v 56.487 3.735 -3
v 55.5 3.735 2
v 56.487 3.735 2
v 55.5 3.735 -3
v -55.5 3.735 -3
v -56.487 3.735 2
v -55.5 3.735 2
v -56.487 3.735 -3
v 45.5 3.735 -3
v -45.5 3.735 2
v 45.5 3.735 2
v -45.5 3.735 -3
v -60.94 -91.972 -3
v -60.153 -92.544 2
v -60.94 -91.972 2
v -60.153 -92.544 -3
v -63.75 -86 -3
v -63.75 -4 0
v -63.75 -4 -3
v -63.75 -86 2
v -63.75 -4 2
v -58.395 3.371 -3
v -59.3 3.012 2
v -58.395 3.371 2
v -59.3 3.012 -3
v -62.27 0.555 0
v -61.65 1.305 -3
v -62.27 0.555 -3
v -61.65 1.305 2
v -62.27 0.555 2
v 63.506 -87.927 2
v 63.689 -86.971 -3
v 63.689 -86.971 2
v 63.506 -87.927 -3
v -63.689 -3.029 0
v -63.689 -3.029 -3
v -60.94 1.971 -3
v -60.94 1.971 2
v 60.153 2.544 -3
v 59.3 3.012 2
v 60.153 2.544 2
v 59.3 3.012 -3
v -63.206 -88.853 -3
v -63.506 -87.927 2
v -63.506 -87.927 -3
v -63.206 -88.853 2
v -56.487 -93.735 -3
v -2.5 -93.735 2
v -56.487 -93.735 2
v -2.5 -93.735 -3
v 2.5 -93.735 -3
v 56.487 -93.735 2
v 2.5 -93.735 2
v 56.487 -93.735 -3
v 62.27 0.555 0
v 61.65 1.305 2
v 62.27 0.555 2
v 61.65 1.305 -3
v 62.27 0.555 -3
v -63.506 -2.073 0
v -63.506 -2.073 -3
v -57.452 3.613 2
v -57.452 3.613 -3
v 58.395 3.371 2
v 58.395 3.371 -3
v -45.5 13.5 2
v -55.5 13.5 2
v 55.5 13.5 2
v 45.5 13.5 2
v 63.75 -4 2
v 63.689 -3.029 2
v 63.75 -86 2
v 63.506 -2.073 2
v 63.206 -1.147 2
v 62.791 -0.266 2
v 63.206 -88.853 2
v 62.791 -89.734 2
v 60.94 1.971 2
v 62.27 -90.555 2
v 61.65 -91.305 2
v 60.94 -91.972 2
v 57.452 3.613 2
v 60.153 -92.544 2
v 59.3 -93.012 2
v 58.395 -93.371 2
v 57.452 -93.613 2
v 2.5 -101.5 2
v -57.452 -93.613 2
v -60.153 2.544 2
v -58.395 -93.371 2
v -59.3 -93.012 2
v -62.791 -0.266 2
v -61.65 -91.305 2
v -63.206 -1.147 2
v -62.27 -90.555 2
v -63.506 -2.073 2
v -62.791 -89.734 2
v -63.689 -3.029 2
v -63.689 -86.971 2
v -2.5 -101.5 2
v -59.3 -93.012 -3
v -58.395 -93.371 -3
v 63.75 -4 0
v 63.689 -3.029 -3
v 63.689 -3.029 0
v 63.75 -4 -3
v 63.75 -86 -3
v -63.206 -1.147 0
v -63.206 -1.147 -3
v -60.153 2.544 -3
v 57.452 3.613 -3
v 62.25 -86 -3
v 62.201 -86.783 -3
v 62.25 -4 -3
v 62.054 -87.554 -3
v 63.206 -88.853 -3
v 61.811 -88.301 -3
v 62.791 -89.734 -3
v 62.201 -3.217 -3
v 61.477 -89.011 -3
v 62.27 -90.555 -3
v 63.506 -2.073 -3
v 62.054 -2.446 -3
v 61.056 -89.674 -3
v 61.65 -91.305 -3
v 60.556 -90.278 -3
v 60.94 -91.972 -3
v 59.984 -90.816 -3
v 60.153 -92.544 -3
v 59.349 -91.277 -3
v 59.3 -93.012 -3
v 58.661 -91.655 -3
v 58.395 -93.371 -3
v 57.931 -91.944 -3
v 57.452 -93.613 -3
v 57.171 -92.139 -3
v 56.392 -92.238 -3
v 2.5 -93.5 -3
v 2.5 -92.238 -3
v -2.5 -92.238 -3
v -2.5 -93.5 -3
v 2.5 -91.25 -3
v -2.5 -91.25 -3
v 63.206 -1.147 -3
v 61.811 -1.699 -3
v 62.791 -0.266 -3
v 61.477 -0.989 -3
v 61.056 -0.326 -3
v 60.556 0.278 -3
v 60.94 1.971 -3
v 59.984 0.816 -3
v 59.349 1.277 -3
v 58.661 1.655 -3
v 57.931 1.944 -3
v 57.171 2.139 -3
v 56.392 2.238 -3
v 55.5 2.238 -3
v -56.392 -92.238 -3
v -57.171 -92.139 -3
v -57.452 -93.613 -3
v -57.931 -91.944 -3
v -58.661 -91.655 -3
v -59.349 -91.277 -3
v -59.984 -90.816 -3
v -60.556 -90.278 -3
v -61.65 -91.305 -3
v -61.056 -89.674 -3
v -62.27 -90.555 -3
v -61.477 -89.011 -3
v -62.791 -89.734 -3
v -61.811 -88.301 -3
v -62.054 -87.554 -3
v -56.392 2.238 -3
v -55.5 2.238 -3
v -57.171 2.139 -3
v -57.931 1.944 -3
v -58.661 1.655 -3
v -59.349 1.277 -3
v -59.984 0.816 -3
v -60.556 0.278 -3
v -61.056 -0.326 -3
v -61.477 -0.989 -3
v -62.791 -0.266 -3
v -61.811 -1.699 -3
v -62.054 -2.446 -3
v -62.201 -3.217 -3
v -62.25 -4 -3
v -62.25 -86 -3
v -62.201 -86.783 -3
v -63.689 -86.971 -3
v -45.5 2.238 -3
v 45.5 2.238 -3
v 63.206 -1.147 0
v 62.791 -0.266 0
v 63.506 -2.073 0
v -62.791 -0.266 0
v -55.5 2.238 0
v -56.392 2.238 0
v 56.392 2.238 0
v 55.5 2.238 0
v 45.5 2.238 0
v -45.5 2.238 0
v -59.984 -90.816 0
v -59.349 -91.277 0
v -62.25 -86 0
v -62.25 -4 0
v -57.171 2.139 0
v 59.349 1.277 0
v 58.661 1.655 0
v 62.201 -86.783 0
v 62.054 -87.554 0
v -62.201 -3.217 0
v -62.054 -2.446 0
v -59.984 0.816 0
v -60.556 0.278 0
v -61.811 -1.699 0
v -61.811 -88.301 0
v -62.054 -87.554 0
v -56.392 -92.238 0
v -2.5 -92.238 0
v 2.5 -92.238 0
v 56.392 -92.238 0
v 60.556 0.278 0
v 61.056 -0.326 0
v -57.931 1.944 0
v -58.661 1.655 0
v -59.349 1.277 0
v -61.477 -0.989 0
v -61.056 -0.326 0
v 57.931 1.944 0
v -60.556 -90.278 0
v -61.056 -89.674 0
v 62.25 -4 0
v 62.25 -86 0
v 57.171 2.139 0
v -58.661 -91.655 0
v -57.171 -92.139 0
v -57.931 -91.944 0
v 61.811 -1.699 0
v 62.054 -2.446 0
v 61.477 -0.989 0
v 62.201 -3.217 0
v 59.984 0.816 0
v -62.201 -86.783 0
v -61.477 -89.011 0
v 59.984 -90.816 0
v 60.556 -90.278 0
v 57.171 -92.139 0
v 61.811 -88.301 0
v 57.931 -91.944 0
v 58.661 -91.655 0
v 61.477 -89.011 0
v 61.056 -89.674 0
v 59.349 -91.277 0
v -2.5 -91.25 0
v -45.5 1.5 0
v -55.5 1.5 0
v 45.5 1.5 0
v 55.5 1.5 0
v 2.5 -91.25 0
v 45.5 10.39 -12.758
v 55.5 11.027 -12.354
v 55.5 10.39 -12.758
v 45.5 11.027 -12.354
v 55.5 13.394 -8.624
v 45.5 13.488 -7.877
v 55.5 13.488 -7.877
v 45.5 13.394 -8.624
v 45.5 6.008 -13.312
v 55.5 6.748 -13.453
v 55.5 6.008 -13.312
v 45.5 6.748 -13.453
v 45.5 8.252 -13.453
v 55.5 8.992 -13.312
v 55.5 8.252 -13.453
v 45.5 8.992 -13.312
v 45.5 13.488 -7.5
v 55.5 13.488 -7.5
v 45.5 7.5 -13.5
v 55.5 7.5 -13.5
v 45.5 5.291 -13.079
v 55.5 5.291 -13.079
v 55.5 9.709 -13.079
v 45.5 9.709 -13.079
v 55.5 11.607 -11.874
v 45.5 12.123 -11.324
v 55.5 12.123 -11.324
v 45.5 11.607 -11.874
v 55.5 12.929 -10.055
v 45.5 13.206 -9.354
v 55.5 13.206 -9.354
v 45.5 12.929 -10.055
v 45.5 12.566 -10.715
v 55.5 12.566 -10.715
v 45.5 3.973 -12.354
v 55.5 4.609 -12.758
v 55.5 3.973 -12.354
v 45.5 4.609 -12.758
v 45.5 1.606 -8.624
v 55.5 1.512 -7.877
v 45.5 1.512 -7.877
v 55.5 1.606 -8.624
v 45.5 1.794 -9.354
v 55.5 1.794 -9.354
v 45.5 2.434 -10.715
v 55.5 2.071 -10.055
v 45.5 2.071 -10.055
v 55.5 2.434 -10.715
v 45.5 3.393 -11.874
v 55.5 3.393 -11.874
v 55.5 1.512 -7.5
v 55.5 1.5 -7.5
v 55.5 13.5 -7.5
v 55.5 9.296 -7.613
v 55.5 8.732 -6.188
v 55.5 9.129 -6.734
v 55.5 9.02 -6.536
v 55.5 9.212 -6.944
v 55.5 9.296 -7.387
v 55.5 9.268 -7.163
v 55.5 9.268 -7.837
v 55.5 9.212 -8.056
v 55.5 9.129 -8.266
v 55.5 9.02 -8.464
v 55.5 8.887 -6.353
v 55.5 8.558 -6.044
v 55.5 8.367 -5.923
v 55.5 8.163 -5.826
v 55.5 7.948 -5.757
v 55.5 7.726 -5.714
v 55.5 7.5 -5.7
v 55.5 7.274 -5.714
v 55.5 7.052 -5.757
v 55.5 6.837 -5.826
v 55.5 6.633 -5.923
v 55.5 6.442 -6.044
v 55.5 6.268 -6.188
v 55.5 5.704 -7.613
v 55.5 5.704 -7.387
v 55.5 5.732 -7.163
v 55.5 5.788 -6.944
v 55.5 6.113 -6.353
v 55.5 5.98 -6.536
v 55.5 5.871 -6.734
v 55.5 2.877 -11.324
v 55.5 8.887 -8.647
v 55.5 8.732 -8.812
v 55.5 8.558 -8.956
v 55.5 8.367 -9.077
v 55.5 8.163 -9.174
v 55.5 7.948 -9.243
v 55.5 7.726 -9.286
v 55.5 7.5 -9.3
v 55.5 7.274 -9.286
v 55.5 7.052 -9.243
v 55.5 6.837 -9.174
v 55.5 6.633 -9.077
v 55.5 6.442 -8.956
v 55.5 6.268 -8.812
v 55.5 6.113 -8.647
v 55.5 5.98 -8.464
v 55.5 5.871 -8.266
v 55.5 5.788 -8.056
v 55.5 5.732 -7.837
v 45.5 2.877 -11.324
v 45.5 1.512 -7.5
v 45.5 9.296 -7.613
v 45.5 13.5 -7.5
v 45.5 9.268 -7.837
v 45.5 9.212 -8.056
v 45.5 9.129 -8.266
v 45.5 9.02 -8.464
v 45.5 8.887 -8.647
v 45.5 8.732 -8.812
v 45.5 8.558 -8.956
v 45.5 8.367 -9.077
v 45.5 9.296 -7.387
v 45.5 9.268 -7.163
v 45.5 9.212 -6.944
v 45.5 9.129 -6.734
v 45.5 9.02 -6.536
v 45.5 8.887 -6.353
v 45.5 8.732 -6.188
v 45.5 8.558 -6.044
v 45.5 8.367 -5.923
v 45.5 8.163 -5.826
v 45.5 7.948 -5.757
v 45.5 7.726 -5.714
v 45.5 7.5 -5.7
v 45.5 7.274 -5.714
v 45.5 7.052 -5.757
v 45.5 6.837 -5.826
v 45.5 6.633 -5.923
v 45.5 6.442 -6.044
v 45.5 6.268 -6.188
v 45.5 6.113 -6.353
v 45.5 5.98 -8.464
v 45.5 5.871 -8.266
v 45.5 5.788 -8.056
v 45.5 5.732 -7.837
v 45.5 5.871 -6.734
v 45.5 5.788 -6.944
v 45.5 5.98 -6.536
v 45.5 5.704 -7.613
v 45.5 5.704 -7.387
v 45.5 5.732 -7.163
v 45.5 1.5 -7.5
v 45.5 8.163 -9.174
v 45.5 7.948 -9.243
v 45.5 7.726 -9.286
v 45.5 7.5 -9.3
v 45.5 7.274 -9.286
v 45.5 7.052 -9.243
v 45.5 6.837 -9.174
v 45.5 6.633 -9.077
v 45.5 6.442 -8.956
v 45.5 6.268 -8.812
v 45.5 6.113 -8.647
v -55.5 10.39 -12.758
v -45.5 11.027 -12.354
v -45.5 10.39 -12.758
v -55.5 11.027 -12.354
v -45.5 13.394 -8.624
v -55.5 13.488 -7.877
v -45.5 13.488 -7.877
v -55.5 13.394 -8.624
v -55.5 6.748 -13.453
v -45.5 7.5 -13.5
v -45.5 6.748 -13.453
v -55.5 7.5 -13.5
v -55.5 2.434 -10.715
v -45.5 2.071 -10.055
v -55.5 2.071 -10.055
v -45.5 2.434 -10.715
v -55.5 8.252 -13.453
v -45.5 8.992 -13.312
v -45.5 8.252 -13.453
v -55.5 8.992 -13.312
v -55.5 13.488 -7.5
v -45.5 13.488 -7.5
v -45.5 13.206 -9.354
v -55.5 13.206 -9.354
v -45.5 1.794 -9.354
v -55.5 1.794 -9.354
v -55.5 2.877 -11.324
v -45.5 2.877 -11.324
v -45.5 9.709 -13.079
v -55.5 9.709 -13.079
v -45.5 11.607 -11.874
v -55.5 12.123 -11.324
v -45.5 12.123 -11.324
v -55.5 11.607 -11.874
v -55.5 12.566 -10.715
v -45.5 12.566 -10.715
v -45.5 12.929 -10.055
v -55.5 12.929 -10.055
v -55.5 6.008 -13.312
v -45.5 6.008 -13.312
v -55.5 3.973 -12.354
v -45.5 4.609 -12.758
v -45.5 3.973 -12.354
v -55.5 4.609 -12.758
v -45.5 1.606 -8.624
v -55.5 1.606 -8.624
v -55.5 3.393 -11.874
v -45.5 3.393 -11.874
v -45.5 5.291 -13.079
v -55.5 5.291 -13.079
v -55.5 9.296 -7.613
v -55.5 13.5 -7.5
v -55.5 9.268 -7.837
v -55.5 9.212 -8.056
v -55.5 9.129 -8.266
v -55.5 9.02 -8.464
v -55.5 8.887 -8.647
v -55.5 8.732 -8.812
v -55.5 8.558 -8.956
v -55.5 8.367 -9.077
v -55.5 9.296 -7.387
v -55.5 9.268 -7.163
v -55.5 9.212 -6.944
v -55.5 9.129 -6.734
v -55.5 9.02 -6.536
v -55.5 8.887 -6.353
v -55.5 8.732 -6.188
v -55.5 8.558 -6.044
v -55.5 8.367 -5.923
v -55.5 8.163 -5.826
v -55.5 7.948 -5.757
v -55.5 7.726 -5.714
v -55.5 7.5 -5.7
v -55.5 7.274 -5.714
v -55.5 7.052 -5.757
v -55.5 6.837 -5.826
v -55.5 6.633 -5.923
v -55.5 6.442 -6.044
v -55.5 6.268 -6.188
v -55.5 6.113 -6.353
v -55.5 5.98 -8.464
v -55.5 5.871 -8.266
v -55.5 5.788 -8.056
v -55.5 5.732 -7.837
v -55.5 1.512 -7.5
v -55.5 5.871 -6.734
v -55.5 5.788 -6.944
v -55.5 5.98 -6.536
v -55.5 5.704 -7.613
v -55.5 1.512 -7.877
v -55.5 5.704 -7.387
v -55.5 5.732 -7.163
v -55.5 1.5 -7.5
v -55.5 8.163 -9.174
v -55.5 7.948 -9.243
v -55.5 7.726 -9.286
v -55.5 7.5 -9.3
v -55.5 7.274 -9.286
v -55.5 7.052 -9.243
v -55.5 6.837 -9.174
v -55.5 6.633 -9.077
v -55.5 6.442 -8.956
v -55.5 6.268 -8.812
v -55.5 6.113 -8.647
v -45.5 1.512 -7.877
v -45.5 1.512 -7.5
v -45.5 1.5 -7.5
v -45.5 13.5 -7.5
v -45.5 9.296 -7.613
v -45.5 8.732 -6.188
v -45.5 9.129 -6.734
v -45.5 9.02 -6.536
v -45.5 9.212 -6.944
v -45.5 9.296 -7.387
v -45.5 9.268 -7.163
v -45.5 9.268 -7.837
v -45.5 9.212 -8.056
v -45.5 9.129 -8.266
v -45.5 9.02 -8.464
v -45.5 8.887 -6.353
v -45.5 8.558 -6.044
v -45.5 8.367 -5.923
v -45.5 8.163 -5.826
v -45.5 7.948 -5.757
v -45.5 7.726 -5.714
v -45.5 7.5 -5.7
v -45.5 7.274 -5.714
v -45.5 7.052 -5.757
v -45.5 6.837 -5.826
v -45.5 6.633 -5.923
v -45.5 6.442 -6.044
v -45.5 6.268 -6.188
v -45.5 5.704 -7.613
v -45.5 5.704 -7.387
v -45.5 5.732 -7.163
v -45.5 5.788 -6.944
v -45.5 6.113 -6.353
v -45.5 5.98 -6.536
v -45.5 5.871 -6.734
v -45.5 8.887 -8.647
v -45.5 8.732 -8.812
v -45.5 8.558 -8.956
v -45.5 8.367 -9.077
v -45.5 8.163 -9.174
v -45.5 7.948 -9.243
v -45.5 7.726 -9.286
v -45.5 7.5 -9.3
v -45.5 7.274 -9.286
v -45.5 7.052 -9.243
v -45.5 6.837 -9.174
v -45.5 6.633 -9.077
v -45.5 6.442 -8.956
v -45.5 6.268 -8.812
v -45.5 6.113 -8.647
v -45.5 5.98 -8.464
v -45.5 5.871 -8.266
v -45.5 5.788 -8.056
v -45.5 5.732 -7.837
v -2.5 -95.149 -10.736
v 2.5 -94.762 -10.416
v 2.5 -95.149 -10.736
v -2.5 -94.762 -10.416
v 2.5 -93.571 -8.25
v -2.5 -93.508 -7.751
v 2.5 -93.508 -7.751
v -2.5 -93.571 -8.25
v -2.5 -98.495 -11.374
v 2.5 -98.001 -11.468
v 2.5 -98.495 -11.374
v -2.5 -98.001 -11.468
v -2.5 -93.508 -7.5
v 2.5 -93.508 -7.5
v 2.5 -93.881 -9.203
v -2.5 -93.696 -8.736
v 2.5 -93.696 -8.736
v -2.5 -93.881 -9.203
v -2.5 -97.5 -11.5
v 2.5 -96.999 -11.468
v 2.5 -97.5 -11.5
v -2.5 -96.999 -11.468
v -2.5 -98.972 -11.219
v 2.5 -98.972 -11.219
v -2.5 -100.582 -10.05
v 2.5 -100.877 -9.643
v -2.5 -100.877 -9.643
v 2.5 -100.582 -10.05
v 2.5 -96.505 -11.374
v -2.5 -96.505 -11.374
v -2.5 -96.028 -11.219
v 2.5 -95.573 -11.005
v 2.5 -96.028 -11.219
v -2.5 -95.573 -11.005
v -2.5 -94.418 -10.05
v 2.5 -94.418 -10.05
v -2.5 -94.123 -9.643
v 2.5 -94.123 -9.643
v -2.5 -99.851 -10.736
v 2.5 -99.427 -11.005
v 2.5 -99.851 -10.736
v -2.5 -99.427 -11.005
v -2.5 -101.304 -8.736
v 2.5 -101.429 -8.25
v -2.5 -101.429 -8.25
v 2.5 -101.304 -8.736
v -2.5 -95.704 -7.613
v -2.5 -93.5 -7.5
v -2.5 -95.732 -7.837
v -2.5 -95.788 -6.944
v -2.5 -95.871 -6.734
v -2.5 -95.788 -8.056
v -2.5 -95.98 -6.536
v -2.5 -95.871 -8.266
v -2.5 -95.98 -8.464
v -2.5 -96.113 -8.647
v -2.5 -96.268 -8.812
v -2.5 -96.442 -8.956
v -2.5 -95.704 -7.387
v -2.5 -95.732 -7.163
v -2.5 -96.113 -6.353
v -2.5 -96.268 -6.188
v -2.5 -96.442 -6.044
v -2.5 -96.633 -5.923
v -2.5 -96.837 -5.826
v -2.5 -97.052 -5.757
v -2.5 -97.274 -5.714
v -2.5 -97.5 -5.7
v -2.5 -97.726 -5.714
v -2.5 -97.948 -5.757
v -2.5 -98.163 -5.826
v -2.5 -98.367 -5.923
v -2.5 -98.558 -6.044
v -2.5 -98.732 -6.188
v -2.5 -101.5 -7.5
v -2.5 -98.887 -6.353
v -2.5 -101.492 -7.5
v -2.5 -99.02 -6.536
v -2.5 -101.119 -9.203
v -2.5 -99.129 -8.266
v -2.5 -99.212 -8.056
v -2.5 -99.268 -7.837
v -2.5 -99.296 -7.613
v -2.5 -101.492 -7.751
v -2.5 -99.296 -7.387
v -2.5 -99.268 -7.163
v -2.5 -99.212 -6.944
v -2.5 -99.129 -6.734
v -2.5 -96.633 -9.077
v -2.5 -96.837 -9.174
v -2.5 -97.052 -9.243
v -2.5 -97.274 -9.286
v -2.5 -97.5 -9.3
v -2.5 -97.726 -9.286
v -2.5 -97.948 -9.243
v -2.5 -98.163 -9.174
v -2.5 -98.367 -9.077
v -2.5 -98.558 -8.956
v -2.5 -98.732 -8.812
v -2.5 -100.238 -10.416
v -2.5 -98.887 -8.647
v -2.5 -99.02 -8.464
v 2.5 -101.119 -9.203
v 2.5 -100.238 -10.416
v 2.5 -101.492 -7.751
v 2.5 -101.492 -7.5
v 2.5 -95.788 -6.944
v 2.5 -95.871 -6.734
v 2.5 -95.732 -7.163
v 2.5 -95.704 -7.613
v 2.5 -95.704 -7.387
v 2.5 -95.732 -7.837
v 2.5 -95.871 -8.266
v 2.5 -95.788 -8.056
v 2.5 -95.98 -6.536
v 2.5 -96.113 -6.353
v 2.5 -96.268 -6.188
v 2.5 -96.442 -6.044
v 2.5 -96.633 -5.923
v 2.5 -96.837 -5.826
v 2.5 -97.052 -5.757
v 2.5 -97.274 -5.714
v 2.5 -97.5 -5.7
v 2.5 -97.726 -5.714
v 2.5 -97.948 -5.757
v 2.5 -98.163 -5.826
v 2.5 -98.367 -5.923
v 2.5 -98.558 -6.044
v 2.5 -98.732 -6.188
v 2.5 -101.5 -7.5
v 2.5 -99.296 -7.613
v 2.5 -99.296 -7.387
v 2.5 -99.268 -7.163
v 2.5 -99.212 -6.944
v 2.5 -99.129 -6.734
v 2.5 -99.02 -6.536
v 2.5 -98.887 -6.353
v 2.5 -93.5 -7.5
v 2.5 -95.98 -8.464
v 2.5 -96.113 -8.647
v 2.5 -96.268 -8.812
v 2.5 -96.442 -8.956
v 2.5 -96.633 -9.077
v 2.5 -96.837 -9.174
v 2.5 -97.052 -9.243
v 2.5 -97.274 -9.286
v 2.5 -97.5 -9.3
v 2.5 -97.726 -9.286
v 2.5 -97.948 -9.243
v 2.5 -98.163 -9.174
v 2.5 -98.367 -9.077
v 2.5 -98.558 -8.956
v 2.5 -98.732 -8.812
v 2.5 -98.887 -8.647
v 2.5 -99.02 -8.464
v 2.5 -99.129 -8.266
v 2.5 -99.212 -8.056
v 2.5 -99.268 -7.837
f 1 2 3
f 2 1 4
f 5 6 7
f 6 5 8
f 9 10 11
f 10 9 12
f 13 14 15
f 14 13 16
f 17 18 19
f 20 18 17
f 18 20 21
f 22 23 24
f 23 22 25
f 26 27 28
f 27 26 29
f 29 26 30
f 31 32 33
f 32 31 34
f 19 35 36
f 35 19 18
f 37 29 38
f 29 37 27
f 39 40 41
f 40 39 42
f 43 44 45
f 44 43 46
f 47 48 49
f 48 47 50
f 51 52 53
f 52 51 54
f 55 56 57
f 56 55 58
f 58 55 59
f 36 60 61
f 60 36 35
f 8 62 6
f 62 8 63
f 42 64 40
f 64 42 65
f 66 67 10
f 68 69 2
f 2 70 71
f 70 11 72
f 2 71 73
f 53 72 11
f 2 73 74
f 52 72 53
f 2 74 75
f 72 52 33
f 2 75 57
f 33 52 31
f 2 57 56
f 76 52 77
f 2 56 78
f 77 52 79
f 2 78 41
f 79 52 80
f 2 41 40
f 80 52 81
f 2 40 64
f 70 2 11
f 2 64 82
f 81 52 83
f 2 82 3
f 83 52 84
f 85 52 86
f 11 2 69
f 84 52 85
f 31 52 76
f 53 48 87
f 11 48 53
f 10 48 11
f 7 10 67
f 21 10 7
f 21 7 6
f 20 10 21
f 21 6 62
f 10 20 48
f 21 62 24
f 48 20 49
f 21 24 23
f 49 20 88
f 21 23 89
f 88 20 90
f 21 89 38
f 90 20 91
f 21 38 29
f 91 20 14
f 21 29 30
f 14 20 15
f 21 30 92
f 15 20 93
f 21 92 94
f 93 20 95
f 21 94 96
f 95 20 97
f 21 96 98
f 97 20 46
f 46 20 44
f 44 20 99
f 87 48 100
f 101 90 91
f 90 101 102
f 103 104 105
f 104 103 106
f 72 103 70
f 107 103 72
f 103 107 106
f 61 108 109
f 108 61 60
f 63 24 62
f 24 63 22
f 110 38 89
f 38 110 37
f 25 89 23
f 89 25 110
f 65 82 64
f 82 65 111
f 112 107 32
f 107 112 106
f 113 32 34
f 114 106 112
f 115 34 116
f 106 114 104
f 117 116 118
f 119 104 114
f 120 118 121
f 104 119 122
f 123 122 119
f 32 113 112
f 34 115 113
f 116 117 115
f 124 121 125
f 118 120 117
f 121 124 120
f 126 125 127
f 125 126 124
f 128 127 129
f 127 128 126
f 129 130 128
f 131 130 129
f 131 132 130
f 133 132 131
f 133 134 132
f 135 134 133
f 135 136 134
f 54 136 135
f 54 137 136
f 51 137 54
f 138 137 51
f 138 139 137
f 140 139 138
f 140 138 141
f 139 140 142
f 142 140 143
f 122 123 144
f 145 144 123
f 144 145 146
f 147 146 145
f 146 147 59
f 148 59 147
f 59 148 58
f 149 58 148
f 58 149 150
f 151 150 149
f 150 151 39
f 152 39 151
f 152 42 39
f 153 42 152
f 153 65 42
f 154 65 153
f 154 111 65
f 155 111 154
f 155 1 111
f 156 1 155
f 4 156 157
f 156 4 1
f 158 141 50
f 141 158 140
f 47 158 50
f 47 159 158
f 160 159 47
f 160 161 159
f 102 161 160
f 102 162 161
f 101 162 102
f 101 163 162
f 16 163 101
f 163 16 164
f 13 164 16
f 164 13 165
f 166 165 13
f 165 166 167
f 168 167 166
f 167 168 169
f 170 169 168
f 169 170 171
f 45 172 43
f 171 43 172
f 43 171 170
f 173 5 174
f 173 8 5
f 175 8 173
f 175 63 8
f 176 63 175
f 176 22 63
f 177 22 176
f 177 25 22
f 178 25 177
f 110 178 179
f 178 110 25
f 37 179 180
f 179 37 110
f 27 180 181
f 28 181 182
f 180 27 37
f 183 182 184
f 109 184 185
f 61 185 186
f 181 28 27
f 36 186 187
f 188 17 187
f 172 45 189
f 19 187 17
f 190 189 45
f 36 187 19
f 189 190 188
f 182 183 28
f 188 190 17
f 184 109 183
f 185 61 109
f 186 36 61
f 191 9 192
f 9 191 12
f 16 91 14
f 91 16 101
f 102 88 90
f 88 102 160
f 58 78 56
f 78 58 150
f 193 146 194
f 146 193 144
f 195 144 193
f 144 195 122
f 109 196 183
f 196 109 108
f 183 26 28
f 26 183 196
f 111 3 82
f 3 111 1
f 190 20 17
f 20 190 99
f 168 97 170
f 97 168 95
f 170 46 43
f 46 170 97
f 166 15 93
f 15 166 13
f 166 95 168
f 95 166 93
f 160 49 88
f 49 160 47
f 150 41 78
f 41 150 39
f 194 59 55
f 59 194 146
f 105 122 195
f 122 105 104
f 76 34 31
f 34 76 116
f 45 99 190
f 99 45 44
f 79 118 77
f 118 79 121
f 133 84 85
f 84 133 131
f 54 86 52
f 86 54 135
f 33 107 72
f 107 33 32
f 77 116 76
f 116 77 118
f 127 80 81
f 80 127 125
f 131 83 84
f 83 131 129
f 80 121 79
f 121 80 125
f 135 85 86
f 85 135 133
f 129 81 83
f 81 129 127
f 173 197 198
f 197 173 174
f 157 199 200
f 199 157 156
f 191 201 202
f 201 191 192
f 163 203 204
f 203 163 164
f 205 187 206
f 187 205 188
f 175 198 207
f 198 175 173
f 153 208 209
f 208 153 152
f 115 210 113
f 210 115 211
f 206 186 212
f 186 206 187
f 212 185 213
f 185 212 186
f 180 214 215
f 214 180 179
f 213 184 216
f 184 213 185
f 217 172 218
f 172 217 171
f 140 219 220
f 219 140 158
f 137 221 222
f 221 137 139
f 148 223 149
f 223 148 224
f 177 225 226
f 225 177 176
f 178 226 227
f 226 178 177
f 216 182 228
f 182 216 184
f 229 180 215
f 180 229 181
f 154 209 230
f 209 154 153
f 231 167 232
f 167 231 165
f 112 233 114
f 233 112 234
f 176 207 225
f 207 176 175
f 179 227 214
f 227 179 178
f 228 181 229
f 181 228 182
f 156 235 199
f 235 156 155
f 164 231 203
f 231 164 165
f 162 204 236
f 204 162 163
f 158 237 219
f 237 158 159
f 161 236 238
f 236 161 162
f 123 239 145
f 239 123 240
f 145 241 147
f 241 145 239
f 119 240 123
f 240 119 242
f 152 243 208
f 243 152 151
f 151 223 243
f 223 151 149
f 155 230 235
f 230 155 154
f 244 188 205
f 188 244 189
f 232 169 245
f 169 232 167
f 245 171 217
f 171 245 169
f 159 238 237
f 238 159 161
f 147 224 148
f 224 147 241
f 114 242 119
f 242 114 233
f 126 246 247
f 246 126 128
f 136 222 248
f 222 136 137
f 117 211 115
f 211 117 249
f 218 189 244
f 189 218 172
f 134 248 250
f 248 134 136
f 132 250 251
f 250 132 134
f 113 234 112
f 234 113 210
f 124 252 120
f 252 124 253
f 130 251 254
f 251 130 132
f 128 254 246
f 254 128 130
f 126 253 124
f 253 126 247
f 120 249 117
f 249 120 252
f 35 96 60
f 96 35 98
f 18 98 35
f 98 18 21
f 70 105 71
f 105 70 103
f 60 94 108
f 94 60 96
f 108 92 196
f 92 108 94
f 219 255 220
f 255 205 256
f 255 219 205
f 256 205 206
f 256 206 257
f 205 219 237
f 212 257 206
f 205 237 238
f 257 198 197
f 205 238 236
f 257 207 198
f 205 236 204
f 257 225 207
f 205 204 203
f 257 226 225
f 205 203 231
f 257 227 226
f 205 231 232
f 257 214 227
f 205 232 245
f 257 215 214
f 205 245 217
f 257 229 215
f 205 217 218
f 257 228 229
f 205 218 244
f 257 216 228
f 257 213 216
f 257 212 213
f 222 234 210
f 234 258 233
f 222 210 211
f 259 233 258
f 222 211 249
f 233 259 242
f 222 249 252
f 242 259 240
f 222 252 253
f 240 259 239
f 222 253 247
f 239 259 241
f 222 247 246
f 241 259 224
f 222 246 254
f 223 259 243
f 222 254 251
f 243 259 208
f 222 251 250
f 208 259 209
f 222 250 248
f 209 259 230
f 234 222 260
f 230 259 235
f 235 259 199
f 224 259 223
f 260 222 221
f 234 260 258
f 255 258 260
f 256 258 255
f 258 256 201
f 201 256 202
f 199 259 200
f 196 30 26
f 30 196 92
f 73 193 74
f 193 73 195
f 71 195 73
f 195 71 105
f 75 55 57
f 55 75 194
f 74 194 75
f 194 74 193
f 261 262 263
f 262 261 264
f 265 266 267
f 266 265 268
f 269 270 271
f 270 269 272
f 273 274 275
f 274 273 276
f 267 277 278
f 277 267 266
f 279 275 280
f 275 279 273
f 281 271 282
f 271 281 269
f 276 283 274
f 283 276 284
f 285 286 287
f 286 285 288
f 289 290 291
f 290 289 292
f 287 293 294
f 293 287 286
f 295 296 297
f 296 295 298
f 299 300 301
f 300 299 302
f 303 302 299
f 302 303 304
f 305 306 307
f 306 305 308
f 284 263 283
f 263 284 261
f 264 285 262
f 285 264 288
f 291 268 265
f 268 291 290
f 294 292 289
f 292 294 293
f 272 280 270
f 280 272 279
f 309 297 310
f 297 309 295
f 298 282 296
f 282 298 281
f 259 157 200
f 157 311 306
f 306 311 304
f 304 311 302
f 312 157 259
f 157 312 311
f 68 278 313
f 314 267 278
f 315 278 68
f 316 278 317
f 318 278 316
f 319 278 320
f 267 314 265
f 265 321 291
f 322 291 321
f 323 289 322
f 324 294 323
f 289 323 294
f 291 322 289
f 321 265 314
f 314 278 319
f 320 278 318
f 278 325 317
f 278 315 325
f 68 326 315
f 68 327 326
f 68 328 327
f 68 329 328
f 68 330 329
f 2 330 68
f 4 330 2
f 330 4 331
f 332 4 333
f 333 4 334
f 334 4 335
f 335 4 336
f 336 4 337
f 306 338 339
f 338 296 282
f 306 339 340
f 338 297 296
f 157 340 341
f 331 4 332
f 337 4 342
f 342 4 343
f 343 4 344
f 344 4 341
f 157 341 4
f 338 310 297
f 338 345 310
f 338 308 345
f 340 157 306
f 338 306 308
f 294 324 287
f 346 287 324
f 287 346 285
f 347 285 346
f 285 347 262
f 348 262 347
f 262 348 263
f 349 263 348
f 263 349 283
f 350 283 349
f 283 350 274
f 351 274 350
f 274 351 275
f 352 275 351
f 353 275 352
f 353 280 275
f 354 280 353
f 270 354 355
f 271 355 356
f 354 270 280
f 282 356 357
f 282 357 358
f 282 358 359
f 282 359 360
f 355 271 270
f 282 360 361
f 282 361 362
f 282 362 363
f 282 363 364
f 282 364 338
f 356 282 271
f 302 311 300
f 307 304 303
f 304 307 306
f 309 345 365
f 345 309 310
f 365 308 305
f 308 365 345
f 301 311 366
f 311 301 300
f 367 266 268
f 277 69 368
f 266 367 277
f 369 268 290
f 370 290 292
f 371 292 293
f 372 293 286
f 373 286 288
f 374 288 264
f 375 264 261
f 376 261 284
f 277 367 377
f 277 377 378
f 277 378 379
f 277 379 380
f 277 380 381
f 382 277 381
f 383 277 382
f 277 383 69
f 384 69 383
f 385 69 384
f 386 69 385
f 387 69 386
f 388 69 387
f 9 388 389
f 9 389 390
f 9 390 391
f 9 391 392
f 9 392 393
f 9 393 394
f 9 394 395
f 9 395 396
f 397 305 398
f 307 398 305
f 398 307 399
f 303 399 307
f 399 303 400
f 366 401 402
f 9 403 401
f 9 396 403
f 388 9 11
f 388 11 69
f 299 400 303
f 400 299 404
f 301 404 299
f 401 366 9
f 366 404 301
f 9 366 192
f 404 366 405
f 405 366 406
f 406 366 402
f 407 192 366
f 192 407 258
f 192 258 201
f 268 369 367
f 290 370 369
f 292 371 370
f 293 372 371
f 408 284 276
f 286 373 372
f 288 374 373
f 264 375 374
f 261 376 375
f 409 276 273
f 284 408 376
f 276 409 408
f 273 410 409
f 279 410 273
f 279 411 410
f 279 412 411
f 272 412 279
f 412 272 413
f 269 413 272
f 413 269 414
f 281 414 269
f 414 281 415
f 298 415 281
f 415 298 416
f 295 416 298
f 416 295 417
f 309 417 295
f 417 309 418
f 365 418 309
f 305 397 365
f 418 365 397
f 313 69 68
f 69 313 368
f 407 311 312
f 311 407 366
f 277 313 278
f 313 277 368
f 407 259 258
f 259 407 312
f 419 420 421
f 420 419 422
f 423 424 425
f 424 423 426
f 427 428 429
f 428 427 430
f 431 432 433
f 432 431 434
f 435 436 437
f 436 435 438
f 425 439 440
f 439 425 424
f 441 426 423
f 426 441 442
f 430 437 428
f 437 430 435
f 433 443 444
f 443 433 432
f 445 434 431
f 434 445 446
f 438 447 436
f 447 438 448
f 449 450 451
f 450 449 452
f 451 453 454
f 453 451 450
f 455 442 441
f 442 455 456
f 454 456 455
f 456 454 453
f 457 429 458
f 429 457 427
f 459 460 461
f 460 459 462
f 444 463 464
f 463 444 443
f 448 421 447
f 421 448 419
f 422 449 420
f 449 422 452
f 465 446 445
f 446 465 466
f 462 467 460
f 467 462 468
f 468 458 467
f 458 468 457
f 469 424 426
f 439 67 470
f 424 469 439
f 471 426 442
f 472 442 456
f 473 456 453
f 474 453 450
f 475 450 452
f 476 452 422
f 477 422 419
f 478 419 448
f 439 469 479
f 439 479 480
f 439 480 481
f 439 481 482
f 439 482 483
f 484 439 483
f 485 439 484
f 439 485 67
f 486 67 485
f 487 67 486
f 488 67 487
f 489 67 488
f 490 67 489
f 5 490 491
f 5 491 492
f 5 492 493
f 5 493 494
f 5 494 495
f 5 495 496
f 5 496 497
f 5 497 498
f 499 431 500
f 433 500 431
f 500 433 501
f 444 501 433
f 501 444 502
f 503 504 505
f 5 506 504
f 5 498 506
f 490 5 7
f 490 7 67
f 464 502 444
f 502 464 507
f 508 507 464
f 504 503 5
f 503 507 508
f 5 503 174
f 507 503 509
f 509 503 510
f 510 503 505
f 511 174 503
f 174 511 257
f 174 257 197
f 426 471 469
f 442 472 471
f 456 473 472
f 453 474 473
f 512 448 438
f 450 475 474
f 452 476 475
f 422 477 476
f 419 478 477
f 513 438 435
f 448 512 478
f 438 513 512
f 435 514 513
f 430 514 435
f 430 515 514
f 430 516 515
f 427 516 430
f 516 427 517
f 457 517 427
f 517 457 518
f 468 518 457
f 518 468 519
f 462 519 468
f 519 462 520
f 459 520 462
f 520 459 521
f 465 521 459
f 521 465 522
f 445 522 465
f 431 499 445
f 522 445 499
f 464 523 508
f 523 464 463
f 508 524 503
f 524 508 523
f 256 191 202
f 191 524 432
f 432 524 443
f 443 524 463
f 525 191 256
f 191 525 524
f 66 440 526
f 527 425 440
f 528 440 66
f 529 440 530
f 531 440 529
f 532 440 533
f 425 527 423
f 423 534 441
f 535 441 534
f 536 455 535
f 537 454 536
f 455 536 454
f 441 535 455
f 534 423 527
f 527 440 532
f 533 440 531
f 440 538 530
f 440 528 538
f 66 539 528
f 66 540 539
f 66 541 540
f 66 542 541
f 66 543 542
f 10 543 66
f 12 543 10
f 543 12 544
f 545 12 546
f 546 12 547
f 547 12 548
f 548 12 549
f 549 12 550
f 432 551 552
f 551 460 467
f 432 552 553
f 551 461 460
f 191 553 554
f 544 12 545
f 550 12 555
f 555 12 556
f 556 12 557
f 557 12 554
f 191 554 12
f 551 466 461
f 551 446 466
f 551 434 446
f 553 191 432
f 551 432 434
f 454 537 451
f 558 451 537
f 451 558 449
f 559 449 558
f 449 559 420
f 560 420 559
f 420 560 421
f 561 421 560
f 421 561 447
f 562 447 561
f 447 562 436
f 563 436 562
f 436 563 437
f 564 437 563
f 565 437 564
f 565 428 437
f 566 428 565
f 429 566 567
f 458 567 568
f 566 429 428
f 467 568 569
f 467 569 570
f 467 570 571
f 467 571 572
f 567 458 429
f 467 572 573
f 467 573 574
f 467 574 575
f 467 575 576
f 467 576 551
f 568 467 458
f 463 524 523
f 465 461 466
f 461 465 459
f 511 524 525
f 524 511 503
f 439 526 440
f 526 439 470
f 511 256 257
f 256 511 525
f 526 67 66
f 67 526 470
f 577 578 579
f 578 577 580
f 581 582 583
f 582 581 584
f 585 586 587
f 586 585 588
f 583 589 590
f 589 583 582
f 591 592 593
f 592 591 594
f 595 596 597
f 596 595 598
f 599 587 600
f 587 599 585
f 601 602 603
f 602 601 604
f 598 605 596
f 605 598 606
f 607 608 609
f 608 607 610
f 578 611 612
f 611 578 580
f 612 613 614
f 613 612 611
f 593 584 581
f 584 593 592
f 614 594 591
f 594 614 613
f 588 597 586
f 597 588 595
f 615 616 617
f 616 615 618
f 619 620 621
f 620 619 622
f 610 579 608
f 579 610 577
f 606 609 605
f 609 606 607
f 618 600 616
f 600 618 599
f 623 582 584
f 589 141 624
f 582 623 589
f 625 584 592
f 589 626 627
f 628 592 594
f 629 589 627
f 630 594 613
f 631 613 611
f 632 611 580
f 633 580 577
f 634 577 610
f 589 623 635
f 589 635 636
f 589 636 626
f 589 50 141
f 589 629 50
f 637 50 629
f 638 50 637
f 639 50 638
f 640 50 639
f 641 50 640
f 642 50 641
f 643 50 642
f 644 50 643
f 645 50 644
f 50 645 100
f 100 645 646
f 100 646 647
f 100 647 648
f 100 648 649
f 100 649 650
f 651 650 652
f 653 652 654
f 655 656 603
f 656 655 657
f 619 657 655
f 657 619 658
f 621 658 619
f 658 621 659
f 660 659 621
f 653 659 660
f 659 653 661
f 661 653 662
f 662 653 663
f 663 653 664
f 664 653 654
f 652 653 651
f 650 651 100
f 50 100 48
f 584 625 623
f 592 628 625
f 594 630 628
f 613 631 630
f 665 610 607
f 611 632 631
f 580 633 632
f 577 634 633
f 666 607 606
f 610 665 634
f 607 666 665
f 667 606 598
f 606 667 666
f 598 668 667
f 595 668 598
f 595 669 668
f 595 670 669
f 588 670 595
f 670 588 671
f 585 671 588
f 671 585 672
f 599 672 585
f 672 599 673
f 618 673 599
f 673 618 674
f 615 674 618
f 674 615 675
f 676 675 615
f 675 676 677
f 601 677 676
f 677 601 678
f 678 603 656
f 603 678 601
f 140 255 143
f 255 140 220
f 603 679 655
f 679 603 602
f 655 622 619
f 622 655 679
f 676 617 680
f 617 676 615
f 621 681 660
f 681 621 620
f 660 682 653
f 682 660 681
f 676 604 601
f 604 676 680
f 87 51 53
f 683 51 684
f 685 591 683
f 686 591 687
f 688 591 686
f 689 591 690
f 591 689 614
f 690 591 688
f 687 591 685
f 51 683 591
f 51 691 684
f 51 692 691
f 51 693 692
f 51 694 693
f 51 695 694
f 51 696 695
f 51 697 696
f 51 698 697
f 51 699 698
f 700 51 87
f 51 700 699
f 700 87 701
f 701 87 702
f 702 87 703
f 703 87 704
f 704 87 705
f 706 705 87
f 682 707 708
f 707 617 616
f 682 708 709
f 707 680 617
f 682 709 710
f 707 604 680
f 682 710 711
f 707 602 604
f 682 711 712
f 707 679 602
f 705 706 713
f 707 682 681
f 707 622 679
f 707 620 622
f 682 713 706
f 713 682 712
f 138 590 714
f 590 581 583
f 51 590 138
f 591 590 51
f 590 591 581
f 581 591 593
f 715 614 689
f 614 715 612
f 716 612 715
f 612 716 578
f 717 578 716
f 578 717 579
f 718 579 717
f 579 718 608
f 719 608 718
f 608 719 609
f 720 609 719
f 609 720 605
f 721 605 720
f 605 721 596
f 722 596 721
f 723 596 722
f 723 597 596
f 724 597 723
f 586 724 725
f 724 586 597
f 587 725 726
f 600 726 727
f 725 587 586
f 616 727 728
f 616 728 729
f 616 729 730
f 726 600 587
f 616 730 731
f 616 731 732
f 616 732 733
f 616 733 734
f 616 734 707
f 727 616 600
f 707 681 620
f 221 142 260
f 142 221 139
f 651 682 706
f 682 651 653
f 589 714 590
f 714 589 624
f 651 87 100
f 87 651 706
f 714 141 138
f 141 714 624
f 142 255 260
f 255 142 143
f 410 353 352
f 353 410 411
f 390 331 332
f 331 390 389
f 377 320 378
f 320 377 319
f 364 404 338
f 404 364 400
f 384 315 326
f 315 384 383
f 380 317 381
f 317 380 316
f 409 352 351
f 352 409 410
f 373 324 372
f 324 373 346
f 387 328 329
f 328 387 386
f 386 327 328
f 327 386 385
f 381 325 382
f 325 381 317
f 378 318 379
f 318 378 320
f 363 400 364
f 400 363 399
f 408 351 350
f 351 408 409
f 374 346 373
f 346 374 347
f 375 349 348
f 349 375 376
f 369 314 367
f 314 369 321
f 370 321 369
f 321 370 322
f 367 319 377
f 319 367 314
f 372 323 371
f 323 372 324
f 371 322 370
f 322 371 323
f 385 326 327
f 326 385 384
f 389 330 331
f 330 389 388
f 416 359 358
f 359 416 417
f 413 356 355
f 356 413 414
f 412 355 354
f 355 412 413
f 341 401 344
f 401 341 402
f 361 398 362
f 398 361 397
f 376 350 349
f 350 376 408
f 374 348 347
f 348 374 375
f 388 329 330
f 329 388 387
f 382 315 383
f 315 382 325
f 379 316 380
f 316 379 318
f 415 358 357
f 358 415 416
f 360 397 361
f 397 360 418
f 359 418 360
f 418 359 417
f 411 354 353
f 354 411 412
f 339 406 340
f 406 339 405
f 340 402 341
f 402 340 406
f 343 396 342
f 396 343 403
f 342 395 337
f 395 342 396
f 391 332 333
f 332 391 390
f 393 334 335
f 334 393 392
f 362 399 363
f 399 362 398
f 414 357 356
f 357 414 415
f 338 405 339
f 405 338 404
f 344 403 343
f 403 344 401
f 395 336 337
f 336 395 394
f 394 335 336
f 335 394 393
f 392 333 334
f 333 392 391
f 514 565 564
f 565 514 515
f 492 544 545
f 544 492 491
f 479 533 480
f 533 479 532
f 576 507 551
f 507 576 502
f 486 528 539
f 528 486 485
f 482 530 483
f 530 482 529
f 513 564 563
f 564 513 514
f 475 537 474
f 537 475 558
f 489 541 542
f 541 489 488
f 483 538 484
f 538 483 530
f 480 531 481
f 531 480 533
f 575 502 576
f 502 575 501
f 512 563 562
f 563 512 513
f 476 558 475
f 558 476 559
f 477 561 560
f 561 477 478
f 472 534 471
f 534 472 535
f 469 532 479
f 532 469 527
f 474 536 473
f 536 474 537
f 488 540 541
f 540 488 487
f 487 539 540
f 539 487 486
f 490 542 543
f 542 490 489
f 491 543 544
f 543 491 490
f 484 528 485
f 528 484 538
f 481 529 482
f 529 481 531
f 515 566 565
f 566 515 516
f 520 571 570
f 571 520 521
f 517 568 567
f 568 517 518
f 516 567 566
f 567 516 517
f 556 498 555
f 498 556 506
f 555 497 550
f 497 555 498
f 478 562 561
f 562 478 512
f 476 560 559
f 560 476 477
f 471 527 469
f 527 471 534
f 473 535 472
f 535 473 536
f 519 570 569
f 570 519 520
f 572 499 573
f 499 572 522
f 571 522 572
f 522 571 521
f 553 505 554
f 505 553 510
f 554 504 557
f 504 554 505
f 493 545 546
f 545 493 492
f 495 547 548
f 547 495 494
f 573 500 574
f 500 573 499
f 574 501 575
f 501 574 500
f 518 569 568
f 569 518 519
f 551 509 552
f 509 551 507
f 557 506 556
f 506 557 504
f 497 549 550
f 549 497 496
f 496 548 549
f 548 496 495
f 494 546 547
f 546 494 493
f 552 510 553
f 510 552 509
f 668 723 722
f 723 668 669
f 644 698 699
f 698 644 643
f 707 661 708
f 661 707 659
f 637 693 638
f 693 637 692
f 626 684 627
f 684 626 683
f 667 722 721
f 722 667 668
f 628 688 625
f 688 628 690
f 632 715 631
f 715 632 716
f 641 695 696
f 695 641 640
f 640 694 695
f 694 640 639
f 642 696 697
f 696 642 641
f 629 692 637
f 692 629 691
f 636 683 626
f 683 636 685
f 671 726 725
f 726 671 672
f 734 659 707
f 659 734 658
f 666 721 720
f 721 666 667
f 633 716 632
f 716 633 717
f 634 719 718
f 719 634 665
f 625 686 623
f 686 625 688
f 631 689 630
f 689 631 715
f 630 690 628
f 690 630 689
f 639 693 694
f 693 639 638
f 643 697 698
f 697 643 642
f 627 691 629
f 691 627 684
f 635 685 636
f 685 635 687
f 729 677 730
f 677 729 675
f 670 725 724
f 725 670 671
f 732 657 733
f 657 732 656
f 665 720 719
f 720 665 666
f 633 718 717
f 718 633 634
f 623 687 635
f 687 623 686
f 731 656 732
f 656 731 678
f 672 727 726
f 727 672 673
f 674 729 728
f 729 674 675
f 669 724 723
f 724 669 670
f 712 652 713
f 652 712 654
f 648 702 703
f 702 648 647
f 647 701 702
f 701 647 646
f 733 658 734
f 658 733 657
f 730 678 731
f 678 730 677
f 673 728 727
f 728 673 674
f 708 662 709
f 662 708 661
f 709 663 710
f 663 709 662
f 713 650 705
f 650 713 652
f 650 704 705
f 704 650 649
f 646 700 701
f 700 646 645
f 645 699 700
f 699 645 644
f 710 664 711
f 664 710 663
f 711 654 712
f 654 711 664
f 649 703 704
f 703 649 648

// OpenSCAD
$fn = 50;


difference() {
	union() {
		translate(v = [0, -45.0000000000, -3]) {
			rotate(a = [0, 0, 0]) {
				difference() {
					union() {
						hull() {
							translate(v = [-56.0000000000, 41.0000000000, 0]) {
								cylinder(h = 5, r = 7.7500000000);
							}
							translate(v = [56.0000000000, 41.0000000000, 0]) {
								cylinder(h = 5, r = 7.7500000000);
							}
							translate(v = [-56.0000000000, -41.0000000000, 0]) {
								cylinder(h = 5, r = 7.7500000000);
							}
							translate(v = [56.0000000000, -41.0000000000, 0]) {
								cylinder(h = 5, r = 7.7500000000);
							}
						}
					}
					union() {
						hull() {
							translate(v = [-56.0000000000, 41.0000000000, 0]) {
								cylinder(h = 5, r = 6.2500000000);
							}
							translate(v = [56.0000000000, 41.0000000000, 0]) {
								cylinder(h = 5, r = 6.2500000000);
							}
							translate(v = [-56.0000000000, -41.0000000000, 0]) {
								cylinder(h = 5, r = 6.2500000000);
							}
							translate(v = [56.0000000000, -41.0000000000, 0]) {
								cylinder(h = 5, r = 6.2500000000);
							}
						}
					}
				}
			}
		}
		translate(v = [0, -45.0000000000, 0]) {
			hull() {
				translate(v = [-56.0000000000, 41.0000000000, 0]) {
					cylinder(h = 2, r = 7.7500000000);
				}
				translate(v = [56.0000000000, 41.0000000000, 0]) {
					cylinder(h = 2, r = 7.7500000000);
				}
				translate(v = [-56.0000000000, -41.0000000000, 0]) {
					cylinder(h = 2, r = 7.7500000000);
				}
				translate(v = [56.0000000000, -41.0000000000, 0]) {
					cylinder(h = 2, r = 7.7500000000);
				}
			}
		}
		translate(v = [45.5000000000, 7.5000000000, -7.5000000000]) {
			rotate(a = [0, 90, 0]) {
				cylinder(h = 10, r = 6.0000000000);
			}
		}
		translate(v = [45.5000000000, 1.5000000000, -7.5000000000]) {
			cube(size = [10, 12, 7.5000000000]);
		}
		translate(v = [45.5000000000, -15.0000000000, 0.0000000000]) {
			cube(size = [10, 28.5000000000, 2]);
		}
		translate(v = [-55.5000000000, 7.5000000000, -7.5000000000]) {
			rotate(a = [0, 90, 0]) {
				cylinder(h = 10, r = 6.0000000000);
			}
		}
		translate(v = [-55.5000000000, 1.5000000000, -7.5000000000]) {
			cube(size = [10, 12, 7.5000000000]);
		}
		translate(v = [-55.5000000000, -15.0000000000, 0.0000000000]) {
			cube(size = [10, 28.5000000000, 2]);
		}
		translate(v = [-2.5000000000, -97.5000000000, -7.5000000000]) {
			rotate(a = [0, 90, 0]) {
				cylinder(h = 5, r = 4.0000000000);
			}
		}
		translate(v = [-2.5000000000, -101.5000000000, -7.5000000000]) {
			cube(size = [5, 8, 7.5000000000]);
		}
		translate(v = [-2.5000000000, -101.5000000000, -3.0000000000]) {
			cube(size = [5, 10.2500000000, 5]);
		}
	}
	union() {
		translate(v = [45.5000000000, 7.5000000000, -7.5000000000]) {
			rotate(a = [0, 90, 0]) {
				cylinder(h = 10, r = 1.8000000000);
			}
		}
		translate(v = [-55.5000000000, 7.5000000000, -7.5000000000]) {
			rotate(a = [0, 90, 0]) {
				cylinder(h = 10, r = 1.8000000000);
			}
		}
		translate(v = [-5.0000000000, -97.5000000000, -7.5000000000]) {
			rotate(a = [0, 90, 0]) {
				cylinder(h = 10, r = 1.8000000000);
			}
		}
	}
}
